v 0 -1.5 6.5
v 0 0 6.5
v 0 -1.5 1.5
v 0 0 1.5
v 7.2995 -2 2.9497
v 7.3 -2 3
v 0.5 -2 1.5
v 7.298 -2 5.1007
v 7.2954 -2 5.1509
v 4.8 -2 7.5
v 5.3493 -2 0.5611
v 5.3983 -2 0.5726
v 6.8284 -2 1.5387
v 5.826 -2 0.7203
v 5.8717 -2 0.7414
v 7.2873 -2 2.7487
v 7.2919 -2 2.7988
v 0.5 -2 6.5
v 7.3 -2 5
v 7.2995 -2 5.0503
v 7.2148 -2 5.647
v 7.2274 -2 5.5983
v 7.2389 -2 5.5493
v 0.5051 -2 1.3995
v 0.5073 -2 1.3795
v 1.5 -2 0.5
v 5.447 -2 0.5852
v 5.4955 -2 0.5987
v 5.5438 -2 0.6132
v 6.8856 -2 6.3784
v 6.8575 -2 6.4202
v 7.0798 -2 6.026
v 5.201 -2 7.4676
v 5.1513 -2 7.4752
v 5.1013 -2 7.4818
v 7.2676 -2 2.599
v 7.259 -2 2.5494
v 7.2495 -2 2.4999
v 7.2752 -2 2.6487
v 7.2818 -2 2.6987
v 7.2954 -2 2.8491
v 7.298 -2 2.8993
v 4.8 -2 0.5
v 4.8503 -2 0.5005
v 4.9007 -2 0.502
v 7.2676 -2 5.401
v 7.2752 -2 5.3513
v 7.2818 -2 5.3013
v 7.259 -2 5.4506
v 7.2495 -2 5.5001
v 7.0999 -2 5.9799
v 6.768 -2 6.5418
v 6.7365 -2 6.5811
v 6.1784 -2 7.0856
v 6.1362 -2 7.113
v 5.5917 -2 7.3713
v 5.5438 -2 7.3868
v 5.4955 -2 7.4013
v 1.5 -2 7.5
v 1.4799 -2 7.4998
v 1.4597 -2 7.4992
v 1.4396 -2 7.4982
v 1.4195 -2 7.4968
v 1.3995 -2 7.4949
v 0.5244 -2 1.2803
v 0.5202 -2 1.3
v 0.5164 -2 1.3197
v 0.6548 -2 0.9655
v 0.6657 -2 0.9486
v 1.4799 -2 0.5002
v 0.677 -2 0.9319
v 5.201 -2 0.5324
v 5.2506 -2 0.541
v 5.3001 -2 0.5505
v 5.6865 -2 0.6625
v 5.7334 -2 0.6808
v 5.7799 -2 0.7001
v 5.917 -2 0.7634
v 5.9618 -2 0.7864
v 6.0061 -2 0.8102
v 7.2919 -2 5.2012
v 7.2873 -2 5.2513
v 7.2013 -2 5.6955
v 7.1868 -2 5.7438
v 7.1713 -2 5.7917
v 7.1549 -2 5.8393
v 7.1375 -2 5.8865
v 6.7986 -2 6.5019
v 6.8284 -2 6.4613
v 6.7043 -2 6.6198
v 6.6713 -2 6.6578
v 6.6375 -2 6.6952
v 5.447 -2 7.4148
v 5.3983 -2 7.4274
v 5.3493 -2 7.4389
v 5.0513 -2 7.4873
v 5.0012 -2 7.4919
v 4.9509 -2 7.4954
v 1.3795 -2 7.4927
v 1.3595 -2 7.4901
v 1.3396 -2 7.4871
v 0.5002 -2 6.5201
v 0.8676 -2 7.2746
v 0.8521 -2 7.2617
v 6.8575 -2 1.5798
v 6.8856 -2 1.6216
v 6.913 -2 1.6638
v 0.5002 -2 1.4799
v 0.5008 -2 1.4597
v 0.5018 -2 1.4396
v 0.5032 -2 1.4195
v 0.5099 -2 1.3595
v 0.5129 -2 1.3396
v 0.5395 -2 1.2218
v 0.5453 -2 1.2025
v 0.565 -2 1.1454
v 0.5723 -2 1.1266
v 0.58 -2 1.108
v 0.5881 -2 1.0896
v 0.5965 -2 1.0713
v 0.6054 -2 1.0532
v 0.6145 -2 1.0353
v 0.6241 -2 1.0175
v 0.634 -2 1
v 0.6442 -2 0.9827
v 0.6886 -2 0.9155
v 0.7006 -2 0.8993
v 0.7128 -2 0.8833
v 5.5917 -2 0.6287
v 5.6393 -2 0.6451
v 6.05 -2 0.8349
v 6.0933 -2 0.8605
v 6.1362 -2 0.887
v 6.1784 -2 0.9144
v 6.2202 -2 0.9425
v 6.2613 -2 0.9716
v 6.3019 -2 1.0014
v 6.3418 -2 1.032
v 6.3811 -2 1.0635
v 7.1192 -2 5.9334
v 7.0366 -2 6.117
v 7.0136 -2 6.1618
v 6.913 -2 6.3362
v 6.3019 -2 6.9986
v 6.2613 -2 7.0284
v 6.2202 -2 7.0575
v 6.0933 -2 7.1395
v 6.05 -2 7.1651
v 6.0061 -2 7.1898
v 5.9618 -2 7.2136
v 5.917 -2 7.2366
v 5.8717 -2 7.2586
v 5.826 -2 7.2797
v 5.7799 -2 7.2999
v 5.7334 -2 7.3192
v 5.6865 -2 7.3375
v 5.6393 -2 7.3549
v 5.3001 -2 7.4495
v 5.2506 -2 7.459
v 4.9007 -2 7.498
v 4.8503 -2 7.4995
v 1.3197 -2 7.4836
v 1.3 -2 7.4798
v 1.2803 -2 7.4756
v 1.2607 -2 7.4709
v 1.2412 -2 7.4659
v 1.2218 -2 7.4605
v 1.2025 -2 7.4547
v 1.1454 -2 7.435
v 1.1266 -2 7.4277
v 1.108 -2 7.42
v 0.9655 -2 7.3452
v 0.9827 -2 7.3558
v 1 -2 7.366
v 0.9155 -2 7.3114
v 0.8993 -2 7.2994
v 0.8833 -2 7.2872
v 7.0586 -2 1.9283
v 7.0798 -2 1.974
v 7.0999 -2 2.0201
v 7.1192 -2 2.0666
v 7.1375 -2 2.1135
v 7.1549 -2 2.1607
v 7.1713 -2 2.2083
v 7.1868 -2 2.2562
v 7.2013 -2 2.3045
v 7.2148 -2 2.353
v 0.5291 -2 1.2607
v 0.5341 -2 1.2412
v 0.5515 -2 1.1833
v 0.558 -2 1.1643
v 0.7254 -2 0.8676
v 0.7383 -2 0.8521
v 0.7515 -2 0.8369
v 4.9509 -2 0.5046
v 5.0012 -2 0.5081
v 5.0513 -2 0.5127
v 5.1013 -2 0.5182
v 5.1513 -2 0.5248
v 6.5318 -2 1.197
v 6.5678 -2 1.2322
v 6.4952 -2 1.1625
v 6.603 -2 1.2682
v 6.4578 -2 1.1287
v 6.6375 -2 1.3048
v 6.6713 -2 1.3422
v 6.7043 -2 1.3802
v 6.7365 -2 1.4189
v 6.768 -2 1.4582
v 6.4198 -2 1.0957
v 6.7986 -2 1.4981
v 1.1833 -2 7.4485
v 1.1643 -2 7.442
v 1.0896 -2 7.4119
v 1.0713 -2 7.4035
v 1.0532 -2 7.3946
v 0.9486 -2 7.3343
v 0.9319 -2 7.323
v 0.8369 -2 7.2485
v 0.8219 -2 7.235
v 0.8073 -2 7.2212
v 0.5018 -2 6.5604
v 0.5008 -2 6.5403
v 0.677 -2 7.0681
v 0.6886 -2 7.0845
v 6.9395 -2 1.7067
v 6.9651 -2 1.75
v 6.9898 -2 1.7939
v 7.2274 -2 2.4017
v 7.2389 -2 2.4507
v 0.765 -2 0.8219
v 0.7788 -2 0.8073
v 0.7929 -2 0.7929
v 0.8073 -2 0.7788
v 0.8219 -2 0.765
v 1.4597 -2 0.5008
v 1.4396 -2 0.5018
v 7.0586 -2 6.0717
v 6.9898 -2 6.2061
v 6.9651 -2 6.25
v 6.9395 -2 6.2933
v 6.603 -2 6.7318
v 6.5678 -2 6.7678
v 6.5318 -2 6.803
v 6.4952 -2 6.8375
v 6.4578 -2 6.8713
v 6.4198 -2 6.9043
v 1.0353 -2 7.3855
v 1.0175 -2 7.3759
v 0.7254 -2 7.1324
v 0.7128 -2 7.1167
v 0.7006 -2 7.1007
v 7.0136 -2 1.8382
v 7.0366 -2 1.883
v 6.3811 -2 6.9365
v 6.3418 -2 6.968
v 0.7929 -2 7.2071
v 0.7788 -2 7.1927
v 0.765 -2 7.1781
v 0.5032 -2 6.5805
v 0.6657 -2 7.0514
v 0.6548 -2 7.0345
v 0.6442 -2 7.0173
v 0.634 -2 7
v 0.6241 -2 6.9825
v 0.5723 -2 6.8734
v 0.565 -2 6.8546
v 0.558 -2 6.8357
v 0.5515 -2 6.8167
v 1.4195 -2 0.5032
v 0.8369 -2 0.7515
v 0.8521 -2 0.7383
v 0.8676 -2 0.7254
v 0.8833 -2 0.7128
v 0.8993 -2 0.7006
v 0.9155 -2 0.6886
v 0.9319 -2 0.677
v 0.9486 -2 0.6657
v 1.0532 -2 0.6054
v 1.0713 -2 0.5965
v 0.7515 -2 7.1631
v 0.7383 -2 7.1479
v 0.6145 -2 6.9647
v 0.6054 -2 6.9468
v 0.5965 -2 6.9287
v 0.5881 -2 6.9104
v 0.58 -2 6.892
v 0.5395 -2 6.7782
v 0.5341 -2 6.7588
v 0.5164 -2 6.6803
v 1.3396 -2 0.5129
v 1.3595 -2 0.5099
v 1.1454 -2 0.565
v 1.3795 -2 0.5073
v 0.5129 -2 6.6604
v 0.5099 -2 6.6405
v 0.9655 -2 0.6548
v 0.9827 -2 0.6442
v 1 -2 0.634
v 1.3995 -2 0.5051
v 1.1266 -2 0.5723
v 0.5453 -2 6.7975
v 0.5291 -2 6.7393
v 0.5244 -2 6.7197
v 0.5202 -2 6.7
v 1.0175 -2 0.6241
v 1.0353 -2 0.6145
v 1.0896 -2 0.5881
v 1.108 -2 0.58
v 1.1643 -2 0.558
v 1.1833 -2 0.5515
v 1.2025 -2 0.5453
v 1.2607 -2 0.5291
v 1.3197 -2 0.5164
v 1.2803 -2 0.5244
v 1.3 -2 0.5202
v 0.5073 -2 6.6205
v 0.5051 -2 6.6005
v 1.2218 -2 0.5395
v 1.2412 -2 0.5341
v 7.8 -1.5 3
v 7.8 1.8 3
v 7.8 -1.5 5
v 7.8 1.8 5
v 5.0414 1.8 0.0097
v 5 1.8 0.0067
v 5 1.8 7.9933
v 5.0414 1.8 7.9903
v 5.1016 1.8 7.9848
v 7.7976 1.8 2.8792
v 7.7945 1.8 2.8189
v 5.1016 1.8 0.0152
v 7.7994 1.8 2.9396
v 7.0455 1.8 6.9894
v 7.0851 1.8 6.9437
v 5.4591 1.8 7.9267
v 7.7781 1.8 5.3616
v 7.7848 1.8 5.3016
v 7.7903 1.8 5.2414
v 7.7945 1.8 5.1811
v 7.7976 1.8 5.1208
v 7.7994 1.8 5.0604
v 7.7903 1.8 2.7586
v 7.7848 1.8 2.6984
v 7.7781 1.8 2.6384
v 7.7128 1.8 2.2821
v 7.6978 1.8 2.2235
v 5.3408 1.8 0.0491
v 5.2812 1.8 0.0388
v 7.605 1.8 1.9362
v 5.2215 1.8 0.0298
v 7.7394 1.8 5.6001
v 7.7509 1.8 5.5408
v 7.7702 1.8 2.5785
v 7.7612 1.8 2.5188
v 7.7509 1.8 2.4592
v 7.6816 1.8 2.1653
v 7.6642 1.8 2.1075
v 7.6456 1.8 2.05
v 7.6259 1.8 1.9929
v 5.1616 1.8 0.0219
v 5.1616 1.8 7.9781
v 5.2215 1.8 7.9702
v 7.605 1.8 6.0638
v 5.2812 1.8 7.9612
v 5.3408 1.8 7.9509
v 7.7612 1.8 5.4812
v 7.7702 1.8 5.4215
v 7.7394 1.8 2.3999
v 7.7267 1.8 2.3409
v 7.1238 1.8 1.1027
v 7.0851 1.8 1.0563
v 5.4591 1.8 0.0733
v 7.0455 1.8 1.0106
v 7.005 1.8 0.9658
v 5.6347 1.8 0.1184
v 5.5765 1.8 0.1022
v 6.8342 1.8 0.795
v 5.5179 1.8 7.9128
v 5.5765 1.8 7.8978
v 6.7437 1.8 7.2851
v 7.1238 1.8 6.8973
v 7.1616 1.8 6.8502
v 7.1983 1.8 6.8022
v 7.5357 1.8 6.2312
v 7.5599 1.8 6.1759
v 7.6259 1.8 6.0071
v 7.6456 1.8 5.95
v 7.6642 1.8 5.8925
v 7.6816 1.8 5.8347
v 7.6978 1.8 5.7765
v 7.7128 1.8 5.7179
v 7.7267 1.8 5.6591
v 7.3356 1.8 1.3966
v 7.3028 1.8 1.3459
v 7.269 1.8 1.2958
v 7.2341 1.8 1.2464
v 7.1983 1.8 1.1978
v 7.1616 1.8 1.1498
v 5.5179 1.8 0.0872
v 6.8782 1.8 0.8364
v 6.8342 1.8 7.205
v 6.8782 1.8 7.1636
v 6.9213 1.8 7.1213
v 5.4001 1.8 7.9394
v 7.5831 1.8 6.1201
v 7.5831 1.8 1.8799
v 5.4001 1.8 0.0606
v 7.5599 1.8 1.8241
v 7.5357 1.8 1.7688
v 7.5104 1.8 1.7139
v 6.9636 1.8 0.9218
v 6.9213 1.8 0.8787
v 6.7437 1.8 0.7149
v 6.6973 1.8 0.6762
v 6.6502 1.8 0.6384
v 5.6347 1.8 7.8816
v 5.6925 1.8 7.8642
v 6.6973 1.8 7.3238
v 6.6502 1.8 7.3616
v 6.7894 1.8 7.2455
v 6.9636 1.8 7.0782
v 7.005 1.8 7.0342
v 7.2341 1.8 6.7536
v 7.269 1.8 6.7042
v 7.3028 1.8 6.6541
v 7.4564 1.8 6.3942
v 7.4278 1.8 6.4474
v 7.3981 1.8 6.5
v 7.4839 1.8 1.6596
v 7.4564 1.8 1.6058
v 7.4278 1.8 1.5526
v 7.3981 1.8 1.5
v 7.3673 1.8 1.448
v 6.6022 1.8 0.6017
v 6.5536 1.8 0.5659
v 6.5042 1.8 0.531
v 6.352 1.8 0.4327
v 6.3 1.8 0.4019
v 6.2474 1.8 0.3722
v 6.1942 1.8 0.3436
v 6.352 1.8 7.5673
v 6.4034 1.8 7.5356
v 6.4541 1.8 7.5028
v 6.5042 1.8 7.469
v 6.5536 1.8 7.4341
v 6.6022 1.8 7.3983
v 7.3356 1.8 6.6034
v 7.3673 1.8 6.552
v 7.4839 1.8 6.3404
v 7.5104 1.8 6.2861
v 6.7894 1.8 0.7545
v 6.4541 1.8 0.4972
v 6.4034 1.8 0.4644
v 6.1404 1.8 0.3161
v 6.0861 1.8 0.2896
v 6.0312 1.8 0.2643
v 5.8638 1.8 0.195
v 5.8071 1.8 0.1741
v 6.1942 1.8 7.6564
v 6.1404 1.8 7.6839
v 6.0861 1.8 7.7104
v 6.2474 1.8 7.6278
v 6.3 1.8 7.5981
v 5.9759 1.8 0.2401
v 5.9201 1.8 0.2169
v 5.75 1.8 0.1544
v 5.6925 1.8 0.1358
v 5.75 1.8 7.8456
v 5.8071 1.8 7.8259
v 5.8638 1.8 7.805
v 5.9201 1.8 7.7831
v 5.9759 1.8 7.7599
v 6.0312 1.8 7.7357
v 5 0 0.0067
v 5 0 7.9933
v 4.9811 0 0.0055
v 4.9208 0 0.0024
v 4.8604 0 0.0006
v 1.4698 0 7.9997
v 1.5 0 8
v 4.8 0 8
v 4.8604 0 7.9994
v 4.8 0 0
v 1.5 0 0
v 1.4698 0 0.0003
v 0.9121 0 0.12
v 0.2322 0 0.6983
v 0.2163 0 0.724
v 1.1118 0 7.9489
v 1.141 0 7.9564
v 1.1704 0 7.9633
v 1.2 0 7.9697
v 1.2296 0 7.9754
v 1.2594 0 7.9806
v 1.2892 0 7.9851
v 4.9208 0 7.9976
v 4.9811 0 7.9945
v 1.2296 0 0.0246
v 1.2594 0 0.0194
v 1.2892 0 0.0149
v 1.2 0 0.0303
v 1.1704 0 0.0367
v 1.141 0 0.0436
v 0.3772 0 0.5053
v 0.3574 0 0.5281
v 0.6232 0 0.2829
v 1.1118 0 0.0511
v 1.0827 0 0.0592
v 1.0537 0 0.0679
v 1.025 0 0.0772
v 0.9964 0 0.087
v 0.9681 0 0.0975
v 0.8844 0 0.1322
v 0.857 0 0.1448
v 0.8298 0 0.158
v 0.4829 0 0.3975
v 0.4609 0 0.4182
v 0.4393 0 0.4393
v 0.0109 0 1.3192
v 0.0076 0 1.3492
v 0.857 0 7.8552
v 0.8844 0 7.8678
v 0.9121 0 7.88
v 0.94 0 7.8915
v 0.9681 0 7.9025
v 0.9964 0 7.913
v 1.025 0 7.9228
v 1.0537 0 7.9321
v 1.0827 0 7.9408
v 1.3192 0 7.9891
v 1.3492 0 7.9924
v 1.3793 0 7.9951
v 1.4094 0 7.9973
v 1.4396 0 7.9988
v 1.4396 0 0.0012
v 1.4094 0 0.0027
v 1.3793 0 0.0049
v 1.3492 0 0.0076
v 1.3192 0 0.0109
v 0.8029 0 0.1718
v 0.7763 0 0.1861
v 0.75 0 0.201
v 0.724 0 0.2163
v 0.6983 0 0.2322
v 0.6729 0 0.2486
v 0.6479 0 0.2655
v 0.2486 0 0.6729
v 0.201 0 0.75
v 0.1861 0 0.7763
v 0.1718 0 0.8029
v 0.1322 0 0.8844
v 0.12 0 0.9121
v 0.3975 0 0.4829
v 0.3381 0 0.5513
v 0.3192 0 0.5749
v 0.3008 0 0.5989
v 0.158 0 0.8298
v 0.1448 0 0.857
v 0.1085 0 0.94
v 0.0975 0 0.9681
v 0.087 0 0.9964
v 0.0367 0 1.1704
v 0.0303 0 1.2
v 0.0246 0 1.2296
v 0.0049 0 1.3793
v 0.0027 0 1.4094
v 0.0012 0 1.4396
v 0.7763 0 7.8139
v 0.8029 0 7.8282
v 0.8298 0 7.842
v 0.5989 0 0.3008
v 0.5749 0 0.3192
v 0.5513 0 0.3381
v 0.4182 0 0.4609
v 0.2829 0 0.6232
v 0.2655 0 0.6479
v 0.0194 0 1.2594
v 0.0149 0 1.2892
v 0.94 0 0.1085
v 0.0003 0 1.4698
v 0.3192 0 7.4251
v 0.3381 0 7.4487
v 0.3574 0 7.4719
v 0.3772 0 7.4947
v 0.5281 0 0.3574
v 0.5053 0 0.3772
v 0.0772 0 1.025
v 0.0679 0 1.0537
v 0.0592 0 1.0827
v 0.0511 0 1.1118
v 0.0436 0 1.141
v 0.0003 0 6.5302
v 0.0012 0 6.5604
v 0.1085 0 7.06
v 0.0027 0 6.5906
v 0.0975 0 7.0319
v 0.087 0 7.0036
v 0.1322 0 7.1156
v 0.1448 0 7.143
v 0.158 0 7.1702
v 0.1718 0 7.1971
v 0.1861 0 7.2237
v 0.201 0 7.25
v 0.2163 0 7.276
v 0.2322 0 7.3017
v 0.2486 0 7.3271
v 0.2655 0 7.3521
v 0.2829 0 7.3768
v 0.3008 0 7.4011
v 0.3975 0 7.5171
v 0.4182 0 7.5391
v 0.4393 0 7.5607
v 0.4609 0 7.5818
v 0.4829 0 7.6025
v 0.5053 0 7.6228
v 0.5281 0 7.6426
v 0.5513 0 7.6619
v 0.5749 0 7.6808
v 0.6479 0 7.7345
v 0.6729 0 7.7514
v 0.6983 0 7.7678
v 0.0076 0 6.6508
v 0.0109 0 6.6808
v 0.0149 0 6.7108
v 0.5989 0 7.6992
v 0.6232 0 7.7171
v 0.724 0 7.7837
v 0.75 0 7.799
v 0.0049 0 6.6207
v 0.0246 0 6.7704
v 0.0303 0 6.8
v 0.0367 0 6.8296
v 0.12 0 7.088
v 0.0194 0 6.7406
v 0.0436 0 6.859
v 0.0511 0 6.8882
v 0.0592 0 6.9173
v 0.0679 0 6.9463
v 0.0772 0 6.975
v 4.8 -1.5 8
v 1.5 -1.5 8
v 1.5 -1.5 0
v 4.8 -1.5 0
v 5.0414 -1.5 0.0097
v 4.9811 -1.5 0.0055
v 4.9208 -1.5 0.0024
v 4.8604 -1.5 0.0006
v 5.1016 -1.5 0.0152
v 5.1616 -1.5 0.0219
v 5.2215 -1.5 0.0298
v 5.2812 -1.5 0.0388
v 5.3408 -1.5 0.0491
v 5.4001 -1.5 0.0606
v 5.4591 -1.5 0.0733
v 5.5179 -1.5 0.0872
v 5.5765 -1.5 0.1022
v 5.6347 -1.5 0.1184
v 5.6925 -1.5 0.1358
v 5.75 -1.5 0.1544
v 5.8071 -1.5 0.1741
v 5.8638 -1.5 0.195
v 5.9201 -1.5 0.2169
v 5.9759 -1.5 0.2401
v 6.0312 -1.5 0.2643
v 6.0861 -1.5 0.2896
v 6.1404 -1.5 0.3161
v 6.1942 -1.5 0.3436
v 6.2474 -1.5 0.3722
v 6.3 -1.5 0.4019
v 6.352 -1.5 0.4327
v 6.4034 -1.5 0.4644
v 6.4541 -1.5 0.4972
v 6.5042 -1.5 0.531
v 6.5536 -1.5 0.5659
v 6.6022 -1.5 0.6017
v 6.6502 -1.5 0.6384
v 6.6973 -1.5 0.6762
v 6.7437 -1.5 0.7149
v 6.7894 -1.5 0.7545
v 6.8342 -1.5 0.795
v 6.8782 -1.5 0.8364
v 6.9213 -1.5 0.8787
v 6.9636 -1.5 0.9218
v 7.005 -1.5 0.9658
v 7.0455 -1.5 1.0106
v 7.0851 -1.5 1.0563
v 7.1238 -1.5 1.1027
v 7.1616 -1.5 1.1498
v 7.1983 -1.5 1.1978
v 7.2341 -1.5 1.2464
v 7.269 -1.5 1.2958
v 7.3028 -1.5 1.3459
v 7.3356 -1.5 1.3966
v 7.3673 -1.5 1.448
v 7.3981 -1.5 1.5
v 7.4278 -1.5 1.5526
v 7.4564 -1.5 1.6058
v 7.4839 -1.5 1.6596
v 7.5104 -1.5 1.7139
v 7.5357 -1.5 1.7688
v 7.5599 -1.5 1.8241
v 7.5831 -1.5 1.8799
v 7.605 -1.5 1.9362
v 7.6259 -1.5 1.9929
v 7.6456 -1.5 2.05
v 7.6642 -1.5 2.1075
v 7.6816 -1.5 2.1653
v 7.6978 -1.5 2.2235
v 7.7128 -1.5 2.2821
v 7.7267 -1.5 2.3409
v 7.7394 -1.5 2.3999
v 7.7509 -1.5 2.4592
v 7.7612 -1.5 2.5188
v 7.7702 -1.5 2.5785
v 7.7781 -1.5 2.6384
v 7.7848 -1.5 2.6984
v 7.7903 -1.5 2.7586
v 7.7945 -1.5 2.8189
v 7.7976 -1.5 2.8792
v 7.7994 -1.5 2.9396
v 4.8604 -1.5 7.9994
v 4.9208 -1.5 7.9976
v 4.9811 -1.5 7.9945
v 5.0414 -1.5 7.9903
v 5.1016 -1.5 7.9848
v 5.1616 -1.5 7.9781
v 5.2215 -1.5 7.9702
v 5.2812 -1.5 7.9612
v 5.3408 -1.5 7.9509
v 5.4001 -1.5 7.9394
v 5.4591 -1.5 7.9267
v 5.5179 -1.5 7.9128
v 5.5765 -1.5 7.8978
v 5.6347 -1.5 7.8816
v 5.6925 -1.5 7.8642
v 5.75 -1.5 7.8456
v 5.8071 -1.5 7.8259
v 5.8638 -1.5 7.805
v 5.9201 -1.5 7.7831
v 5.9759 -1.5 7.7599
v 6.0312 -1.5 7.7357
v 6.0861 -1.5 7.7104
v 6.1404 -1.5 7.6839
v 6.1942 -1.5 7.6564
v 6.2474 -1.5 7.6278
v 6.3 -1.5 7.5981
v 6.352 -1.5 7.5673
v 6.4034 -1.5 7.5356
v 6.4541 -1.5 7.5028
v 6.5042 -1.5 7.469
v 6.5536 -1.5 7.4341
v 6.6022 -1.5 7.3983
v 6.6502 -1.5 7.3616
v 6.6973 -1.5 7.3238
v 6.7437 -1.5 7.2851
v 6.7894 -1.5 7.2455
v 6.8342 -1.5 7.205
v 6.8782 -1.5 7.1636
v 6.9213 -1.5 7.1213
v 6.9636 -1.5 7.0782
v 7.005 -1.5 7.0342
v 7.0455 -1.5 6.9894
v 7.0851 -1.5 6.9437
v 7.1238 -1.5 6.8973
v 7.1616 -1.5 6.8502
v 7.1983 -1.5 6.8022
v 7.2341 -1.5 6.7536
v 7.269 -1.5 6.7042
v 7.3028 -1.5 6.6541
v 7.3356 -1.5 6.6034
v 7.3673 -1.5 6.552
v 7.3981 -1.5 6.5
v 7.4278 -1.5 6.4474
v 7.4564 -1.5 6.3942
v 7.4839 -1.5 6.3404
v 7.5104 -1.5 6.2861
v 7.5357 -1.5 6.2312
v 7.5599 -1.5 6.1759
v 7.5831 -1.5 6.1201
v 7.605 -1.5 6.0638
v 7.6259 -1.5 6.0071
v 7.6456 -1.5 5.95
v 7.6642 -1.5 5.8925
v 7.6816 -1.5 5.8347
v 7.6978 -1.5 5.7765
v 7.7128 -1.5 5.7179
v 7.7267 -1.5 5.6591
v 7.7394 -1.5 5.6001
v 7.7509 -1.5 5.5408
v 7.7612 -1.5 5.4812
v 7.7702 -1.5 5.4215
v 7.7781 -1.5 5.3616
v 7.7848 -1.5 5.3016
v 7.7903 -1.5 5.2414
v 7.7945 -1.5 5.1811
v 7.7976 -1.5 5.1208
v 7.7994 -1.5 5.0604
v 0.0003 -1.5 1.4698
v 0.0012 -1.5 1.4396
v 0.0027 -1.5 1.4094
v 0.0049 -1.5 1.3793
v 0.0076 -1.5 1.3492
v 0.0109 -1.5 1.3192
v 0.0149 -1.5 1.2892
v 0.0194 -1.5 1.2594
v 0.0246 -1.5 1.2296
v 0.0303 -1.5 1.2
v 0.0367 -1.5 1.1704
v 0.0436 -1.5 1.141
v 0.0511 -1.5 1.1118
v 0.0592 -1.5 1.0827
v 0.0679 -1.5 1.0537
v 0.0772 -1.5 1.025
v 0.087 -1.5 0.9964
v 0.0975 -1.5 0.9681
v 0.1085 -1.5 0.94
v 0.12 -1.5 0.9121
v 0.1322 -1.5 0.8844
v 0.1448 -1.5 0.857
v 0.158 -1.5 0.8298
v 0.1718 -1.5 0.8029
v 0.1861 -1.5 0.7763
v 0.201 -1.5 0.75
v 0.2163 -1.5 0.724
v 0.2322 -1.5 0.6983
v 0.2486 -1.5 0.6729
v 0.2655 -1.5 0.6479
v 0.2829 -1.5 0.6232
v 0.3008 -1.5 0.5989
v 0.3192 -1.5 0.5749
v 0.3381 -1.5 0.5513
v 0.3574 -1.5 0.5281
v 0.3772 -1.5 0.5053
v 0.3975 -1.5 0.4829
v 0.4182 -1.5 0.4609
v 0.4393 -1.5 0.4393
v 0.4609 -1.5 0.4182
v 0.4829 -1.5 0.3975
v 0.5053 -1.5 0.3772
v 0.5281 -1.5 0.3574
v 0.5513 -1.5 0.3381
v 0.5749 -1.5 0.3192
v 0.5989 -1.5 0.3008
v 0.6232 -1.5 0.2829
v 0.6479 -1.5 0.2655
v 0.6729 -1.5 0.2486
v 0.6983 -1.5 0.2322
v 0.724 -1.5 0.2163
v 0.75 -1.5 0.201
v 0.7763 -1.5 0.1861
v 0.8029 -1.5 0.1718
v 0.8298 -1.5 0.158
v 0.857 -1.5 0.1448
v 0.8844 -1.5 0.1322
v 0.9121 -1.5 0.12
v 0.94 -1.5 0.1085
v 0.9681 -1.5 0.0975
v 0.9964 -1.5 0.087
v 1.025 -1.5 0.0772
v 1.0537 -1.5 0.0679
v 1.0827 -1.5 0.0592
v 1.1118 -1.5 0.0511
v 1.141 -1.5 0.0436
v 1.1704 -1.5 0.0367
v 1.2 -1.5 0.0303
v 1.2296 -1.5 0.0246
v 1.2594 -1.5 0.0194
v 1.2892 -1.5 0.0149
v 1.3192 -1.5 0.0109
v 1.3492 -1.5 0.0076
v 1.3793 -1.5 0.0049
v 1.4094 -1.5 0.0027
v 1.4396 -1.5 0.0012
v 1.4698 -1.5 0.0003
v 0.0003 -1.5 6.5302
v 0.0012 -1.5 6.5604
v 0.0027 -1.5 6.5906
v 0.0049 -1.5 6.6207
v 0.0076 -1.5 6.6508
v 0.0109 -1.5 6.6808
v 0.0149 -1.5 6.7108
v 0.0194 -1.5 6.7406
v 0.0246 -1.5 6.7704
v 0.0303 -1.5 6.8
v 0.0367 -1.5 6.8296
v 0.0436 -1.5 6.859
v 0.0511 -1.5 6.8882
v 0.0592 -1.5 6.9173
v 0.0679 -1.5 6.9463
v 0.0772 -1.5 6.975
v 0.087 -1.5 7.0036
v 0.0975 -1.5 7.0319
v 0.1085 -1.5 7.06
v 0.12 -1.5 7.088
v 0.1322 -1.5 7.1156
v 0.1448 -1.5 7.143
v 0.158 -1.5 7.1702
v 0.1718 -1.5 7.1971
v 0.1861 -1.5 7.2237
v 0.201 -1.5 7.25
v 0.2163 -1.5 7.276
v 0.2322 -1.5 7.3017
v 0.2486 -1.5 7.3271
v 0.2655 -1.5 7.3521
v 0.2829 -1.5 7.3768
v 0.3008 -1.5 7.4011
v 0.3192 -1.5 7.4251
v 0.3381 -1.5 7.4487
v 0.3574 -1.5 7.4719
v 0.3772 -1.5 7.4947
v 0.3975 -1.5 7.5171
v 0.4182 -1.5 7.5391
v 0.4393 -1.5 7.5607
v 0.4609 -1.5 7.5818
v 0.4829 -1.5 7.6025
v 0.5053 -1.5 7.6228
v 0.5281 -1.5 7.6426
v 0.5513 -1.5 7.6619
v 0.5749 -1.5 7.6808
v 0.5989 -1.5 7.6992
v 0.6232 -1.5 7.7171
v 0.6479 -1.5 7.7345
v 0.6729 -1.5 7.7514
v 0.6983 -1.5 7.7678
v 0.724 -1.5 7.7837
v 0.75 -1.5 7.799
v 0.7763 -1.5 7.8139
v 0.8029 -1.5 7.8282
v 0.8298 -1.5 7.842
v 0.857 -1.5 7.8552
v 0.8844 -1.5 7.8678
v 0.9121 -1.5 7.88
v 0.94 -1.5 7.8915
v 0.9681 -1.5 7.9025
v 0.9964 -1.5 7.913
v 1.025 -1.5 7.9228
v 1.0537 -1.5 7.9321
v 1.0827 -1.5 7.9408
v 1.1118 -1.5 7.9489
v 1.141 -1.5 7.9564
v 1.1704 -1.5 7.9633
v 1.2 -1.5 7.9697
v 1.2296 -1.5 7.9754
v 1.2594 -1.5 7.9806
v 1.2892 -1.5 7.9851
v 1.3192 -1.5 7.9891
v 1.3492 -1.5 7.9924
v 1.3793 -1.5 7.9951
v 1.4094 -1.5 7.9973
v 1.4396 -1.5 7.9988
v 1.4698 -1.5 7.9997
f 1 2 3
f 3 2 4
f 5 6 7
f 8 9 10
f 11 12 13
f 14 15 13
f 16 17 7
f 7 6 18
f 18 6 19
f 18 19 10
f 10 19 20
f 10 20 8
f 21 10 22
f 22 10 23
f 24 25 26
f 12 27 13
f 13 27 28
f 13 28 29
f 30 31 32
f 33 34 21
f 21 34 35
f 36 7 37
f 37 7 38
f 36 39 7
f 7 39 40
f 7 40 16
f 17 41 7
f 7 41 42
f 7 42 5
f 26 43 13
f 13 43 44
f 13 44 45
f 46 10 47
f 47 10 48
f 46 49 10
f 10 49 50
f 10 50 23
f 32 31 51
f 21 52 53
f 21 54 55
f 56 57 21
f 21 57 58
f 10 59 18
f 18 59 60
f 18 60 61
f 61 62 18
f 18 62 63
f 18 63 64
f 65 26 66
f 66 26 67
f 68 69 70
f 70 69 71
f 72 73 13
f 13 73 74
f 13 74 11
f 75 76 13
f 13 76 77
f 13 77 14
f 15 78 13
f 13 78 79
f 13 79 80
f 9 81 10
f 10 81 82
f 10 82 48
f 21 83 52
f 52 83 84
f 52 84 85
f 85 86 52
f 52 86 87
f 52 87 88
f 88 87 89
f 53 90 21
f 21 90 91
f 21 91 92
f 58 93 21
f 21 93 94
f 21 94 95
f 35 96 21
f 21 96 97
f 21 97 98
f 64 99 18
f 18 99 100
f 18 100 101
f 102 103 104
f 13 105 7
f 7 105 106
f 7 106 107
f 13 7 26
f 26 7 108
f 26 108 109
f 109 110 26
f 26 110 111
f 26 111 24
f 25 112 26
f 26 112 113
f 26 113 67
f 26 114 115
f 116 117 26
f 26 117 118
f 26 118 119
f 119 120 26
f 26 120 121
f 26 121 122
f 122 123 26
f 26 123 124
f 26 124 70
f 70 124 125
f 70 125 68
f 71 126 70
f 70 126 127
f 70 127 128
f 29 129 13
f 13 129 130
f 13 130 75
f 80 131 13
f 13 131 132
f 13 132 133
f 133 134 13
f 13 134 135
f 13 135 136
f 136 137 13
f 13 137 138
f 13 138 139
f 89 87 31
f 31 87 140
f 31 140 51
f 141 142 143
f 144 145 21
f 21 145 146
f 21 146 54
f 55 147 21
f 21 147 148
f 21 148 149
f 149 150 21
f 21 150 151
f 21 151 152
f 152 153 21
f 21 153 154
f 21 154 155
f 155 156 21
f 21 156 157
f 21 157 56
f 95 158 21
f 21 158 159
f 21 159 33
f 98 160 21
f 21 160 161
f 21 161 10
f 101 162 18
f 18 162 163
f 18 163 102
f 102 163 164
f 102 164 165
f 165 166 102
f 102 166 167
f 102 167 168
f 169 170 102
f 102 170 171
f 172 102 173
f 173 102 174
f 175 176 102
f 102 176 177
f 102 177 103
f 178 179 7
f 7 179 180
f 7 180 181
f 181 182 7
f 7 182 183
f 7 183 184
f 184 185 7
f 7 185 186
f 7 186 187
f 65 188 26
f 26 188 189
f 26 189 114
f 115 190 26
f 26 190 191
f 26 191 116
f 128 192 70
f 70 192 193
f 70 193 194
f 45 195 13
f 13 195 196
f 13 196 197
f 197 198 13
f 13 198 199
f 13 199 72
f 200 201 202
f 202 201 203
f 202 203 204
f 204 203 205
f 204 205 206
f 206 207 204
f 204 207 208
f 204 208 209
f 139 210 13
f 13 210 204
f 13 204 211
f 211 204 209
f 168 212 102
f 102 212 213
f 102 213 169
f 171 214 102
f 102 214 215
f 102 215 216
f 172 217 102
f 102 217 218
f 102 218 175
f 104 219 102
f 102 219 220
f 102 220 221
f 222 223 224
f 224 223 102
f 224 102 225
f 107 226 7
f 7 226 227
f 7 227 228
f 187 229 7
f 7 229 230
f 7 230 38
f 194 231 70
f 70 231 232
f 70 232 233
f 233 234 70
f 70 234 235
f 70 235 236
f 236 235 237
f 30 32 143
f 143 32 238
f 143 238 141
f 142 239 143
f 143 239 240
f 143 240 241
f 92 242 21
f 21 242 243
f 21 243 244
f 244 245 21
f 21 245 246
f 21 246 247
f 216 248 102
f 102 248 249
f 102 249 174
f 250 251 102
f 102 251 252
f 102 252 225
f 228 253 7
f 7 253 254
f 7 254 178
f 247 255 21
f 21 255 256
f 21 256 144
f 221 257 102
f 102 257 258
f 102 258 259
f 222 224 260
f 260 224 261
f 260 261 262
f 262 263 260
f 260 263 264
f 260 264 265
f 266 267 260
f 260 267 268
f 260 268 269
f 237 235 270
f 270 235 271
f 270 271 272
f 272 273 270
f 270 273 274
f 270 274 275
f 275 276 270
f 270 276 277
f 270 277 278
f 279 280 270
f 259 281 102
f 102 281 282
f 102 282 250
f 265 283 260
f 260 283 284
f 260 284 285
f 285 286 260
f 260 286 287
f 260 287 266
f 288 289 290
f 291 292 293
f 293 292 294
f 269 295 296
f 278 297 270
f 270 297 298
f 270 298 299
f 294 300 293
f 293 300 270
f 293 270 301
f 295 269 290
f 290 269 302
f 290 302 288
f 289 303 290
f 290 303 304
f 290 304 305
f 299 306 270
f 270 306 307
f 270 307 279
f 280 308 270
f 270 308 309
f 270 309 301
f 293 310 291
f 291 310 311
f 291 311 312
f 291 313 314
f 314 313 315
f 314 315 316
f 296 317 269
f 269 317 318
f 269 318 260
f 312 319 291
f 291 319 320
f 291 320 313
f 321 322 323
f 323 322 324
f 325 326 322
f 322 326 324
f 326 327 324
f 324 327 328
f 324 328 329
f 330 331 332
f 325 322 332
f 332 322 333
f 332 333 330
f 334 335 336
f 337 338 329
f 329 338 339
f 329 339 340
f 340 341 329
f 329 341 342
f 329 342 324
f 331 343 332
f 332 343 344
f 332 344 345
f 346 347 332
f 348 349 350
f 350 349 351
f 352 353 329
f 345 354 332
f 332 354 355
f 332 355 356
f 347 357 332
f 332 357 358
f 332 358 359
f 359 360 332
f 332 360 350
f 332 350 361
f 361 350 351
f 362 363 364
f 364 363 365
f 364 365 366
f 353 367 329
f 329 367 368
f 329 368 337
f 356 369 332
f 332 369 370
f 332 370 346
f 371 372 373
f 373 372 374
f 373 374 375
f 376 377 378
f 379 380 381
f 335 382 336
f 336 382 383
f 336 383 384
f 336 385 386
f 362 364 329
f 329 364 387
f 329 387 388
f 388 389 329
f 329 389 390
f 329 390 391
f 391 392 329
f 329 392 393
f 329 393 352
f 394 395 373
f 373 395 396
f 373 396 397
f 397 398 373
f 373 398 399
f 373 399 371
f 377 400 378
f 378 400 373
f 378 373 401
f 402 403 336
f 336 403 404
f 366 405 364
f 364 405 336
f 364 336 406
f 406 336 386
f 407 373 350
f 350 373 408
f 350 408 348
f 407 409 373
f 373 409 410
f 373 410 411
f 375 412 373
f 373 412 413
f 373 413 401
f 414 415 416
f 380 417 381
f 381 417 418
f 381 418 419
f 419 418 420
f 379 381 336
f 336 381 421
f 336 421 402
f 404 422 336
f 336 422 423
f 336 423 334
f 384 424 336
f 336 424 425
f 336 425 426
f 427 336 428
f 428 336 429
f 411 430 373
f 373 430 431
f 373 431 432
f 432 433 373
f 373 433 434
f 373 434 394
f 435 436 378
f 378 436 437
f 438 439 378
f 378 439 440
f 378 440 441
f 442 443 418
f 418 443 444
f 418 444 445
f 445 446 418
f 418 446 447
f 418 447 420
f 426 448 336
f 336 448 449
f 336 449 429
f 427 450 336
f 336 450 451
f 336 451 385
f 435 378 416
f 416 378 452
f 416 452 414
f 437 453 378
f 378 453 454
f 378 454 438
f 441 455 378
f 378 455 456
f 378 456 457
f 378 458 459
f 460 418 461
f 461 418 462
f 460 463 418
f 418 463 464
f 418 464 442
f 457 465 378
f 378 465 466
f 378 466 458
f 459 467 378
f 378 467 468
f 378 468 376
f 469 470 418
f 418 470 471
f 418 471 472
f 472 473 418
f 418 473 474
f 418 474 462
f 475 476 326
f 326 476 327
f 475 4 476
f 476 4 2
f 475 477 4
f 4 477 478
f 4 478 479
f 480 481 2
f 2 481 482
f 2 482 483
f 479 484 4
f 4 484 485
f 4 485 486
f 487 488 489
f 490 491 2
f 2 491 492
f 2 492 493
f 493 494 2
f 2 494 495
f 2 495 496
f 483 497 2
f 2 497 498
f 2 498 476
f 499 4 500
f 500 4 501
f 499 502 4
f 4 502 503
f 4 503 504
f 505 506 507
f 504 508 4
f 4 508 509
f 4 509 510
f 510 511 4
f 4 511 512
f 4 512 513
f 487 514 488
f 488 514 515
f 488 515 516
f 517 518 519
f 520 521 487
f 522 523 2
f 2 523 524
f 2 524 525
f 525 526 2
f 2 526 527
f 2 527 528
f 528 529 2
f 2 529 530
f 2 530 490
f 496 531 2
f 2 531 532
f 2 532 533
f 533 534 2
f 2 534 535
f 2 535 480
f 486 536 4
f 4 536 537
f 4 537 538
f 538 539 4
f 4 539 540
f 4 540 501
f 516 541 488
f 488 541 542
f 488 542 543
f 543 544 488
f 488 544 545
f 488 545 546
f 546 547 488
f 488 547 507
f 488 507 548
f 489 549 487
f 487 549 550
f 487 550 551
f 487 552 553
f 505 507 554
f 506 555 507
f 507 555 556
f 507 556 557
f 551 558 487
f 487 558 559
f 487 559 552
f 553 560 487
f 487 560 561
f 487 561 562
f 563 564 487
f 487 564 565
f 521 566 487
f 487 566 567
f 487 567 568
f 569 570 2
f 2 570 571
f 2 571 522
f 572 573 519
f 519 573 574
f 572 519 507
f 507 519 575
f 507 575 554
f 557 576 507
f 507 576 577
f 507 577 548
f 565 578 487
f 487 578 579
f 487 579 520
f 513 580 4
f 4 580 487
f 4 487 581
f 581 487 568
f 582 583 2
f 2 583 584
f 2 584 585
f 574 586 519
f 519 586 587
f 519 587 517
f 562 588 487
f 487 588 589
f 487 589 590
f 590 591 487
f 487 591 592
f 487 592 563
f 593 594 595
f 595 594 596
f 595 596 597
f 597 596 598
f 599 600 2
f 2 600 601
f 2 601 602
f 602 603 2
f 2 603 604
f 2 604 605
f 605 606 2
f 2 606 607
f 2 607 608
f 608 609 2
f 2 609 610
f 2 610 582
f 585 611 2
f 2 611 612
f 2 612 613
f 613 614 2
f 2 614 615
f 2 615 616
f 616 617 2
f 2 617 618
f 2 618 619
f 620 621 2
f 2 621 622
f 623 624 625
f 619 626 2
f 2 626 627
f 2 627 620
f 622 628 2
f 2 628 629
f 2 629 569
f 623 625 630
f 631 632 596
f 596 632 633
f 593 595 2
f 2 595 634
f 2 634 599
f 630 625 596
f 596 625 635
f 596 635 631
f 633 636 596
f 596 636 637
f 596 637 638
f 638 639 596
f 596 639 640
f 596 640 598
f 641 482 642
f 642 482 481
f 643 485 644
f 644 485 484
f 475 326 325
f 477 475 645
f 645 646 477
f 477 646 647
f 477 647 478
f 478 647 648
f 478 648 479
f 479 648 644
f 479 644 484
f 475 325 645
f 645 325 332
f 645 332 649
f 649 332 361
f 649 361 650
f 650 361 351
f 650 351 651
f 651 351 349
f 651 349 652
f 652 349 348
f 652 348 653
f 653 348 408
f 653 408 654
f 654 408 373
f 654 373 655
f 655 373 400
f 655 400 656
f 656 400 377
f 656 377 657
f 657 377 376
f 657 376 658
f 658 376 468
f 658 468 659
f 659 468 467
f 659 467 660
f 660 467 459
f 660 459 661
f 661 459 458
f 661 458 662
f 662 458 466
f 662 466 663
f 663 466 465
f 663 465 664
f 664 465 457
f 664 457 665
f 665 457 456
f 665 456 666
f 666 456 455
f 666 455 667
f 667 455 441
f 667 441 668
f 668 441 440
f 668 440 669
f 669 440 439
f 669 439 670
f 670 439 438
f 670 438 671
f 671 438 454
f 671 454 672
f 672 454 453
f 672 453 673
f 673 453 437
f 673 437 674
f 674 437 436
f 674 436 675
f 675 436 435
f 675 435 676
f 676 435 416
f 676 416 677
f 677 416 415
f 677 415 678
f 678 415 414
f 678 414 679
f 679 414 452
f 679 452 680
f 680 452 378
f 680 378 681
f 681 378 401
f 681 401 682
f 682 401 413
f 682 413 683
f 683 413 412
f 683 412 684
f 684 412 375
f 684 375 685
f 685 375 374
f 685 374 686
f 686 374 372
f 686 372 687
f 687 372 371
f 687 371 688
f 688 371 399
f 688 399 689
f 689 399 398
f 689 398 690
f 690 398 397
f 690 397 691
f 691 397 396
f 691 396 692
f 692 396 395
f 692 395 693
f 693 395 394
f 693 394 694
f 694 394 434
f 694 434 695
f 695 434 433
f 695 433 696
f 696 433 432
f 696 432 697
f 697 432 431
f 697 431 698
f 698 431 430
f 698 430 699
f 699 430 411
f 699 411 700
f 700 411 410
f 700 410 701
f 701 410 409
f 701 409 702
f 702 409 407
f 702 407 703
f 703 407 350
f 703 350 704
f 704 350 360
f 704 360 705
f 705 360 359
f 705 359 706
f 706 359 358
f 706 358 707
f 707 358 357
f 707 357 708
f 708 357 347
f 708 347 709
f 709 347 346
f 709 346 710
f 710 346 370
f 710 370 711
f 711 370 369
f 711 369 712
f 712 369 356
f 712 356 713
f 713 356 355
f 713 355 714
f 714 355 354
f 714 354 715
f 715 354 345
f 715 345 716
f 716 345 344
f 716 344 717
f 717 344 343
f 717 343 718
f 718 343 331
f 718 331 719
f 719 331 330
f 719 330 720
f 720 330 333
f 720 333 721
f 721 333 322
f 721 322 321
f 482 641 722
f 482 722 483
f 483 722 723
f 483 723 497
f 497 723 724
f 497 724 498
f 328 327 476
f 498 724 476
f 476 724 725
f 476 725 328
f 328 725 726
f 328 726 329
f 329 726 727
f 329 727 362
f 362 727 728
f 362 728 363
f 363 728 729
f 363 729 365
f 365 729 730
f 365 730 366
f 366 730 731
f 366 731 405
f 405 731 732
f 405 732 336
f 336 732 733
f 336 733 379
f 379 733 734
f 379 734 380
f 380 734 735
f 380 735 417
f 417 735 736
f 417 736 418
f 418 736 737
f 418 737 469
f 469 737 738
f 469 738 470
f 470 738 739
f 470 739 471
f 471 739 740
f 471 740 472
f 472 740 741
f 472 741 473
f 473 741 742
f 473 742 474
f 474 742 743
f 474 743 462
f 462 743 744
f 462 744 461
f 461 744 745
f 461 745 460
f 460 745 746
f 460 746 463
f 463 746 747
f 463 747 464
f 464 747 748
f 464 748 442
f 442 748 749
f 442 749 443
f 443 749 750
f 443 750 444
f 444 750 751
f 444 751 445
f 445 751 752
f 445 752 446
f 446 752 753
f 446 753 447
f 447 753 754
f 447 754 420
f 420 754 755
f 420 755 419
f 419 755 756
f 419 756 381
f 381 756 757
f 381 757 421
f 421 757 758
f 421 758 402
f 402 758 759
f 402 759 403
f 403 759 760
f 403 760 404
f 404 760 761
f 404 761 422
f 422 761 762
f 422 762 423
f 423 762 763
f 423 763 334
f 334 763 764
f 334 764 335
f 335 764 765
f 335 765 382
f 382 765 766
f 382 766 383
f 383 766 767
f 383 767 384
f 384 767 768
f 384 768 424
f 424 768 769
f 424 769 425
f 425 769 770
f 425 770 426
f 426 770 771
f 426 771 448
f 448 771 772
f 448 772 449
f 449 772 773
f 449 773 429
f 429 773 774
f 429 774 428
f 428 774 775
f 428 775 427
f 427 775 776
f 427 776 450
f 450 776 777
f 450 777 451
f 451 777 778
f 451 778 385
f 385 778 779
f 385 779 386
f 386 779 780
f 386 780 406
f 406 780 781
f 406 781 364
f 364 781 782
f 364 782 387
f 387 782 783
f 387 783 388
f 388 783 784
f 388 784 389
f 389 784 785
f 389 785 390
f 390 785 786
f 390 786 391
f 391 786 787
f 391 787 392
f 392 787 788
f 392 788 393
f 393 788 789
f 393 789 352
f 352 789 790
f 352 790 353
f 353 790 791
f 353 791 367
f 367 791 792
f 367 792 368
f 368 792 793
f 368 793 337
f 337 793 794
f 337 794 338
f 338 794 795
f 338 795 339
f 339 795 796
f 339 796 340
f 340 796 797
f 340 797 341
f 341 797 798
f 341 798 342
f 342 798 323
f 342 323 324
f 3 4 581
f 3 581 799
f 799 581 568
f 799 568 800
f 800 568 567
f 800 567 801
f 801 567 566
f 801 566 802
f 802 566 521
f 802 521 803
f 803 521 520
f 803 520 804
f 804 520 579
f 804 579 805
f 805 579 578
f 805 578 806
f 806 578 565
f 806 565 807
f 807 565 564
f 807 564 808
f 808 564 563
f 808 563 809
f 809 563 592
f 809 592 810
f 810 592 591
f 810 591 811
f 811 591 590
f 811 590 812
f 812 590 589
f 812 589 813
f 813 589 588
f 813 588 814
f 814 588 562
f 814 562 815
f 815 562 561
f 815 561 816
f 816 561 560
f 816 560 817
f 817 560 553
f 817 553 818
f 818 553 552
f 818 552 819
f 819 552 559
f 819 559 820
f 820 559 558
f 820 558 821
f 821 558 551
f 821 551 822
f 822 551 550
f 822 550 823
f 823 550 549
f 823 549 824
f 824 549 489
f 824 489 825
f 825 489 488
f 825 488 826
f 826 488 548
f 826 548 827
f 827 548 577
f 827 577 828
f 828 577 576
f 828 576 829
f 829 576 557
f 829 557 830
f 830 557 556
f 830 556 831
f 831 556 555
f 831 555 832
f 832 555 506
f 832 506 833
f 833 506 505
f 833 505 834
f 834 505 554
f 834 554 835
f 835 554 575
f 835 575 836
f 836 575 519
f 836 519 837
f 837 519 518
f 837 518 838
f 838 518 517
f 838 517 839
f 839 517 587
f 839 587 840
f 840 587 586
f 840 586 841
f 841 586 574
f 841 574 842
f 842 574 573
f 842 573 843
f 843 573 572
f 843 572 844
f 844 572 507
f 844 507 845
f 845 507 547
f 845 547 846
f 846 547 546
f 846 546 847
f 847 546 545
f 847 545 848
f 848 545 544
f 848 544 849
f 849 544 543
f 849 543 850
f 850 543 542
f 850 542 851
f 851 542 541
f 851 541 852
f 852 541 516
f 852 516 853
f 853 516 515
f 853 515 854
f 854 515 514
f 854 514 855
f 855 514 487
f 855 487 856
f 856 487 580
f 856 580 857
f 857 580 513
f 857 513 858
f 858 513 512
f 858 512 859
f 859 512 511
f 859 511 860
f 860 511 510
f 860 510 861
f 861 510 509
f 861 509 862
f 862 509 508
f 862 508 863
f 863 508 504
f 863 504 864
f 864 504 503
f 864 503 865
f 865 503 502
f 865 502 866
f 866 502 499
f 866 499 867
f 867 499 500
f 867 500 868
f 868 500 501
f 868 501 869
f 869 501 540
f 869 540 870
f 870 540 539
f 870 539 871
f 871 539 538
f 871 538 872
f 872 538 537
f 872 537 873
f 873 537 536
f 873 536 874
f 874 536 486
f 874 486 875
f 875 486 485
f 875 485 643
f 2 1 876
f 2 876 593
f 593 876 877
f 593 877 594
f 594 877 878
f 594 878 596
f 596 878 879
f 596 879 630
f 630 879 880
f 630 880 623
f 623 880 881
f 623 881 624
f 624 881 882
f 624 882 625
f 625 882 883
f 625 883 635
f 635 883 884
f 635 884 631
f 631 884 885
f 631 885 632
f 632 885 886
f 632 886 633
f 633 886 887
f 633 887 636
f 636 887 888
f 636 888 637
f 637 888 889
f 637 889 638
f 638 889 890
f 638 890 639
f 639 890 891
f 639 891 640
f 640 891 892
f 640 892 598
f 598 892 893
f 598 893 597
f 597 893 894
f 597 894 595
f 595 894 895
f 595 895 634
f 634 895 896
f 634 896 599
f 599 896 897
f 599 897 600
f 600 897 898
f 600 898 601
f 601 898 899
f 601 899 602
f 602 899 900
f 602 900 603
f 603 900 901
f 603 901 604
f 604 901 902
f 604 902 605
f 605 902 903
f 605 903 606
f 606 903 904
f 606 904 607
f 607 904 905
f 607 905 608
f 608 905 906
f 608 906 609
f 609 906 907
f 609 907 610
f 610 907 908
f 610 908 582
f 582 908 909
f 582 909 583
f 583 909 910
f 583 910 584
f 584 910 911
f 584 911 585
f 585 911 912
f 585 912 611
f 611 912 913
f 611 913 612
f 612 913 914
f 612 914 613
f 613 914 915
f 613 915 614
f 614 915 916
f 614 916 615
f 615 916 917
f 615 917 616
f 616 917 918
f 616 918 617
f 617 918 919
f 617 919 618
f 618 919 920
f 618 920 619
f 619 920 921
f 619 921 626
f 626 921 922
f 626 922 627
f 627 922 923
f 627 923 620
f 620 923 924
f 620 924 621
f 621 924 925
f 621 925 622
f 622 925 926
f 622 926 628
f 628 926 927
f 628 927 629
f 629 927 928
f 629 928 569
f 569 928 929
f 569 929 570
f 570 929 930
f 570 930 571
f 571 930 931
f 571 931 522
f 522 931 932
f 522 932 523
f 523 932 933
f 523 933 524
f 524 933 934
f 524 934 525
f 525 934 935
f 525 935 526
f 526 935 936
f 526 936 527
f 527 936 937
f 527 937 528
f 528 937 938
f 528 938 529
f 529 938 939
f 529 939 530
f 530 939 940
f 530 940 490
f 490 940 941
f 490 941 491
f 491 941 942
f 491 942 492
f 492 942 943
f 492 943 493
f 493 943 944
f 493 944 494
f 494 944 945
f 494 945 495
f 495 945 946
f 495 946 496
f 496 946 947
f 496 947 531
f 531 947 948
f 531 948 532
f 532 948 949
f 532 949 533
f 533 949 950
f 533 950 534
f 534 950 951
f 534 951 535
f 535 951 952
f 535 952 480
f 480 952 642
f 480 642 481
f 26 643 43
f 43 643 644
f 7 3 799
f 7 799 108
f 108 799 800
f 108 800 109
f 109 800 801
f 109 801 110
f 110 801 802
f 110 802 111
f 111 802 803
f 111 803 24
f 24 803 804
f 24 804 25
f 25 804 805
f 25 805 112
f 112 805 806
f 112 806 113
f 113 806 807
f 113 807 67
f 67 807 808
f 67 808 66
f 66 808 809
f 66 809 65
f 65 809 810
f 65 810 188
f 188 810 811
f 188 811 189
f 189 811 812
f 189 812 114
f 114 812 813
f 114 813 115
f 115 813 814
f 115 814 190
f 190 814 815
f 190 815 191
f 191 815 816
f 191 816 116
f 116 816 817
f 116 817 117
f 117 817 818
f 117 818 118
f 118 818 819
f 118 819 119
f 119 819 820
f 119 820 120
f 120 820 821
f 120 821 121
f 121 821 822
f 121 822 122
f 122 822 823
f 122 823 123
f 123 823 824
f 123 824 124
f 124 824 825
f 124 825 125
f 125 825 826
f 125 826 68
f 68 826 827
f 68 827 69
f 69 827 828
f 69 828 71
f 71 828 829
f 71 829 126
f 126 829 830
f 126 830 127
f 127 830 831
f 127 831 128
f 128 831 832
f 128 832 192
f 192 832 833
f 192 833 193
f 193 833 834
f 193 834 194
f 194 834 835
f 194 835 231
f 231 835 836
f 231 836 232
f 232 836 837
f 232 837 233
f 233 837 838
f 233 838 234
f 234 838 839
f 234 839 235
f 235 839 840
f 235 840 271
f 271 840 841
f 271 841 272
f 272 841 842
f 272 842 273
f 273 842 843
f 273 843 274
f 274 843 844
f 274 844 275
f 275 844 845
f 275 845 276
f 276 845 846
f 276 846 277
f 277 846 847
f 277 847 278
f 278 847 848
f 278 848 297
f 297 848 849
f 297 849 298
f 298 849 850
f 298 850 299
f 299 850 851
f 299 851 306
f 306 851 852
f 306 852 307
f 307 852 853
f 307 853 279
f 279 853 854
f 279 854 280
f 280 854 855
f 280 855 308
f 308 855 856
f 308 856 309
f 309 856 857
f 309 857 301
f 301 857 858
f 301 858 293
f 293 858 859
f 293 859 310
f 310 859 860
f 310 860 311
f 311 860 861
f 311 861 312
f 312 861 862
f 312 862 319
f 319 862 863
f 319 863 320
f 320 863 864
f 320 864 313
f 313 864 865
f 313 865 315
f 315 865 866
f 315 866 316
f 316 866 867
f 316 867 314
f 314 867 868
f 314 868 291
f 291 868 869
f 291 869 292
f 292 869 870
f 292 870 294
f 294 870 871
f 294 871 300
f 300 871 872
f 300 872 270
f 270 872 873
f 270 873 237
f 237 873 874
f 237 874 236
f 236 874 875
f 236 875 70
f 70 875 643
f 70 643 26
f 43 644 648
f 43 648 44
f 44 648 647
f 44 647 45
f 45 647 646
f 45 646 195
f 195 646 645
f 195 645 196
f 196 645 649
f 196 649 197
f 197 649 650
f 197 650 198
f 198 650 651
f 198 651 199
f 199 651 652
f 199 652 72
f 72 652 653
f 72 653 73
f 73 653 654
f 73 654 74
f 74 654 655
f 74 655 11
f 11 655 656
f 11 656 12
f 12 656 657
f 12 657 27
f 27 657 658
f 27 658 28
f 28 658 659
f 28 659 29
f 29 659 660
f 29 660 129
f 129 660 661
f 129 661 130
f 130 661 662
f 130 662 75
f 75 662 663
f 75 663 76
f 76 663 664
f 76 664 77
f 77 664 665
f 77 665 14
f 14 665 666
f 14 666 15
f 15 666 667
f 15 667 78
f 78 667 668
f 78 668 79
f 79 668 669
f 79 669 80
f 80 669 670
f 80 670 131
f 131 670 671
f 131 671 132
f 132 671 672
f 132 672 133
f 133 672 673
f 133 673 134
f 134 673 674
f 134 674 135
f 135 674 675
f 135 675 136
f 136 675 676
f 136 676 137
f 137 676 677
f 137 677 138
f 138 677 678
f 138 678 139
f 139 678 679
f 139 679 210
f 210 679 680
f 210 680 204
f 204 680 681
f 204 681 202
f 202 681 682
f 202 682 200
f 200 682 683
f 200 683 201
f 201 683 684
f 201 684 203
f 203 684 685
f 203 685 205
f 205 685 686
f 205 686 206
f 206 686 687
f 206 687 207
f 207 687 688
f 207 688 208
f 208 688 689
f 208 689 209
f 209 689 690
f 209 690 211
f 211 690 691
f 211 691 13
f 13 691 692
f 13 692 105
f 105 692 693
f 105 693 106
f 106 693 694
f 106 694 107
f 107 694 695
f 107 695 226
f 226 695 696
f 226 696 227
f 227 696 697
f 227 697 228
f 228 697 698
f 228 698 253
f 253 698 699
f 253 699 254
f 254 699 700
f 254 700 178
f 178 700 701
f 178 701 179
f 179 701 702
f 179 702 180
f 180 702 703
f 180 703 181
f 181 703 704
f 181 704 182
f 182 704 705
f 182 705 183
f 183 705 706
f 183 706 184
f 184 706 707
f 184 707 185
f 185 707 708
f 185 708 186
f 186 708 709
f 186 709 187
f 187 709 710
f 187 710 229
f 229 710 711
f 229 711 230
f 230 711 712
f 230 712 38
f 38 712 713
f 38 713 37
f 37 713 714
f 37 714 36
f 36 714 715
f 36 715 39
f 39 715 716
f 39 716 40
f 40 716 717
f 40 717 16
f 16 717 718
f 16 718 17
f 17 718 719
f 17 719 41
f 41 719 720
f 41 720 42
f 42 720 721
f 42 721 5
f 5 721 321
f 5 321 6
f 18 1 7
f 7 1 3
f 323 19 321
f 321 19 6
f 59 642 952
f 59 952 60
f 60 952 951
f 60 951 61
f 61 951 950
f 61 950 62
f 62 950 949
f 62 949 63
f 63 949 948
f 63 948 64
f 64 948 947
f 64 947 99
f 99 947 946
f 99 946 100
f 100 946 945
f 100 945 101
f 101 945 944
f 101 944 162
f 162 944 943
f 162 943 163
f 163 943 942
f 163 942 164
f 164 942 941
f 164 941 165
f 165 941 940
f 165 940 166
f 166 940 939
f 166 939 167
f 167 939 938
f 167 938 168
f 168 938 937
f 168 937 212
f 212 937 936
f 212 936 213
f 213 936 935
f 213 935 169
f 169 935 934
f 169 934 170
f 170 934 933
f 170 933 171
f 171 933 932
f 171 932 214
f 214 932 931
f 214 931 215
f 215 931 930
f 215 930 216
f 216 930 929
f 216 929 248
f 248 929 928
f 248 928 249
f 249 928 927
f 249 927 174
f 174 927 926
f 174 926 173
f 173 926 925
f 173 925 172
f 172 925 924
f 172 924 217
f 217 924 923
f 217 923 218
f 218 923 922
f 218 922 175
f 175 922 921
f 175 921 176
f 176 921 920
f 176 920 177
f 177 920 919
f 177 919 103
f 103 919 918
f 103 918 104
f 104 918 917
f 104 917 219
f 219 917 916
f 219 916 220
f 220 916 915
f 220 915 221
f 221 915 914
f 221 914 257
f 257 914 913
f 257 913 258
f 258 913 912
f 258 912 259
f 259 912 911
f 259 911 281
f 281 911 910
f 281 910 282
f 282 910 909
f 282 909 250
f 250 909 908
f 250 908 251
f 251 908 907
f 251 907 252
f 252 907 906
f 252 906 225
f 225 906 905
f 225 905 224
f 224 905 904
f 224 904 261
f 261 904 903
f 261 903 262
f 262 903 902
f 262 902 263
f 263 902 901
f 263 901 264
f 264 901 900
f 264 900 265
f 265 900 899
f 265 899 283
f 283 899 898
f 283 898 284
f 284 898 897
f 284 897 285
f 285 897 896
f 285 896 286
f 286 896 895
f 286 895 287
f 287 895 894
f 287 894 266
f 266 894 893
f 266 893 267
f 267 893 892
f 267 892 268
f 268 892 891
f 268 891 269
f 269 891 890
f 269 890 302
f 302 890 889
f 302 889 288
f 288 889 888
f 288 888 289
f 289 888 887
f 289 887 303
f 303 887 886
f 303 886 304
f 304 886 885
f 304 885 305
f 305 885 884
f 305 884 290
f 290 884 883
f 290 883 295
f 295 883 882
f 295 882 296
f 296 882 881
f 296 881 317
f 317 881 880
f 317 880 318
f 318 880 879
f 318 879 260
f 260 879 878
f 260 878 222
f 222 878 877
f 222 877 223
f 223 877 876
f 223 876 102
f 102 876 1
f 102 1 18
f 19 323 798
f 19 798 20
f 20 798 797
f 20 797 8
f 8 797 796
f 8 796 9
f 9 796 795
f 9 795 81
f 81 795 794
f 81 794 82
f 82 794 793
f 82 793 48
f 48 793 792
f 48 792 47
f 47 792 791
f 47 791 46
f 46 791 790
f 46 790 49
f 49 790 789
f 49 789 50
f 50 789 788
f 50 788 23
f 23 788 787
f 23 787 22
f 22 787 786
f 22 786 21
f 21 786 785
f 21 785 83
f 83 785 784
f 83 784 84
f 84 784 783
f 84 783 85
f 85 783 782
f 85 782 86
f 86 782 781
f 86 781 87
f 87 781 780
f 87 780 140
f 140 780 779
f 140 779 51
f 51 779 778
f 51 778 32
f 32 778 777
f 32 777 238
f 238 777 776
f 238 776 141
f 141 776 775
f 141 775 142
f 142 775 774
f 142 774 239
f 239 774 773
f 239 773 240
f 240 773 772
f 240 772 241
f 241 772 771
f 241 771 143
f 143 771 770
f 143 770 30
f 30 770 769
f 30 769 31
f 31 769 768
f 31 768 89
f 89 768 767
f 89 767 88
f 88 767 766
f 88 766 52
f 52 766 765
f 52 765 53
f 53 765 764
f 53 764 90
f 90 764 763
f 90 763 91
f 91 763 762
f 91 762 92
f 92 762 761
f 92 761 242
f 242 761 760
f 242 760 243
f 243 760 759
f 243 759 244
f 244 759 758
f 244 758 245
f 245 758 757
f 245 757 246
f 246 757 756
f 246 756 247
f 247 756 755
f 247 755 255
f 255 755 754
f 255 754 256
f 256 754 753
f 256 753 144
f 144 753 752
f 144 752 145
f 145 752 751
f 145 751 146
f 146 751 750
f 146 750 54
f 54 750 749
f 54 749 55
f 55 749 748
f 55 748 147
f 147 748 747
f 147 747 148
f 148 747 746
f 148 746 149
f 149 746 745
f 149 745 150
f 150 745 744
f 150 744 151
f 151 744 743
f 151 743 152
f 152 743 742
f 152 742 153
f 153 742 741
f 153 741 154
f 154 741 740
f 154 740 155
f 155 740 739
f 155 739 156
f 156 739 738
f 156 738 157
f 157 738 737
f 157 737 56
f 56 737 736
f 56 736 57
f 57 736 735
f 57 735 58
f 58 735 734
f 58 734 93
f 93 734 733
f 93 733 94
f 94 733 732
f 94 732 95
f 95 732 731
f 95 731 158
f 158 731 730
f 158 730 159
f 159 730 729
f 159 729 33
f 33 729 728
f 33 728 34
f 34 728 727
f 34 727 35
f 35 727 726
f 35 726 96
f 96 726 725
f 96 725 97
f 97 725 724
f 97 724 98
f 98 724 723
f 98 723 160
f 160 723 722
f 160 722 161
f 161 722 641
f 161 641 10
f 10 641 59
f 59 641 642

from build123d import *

# Parameters (mm, degrees)
BOSS_EXTRUDE1_DEPTH = 8
FILLET1_R           = 3
FILLET2_R           = 1.5
CHAMFER1_SIZE       = 0.5


with BuildPart() as part:
    # Sketch1 → Boss-Extrude1 (new body)
    with BuildSketch(Plane.XY):
        Polygon((0, 0), (5, 0), (5, 1.8), (7.8, 1.8), (7.8, 0), (7.8, -0.329113924), (7.8, -2), (6.430379747, -2), (0, -2), align=None)
    extrude(amount=BOSS_EXTRUDE1_DEPTH)

    # Fillet1
    fillet1_edges = [part.edges().sort_by_distance(p)[0] for p in [
        (7.8, -0.1, 0),
        (7.8, -0.1, 8),
    ]]
    fillet(fillet1_edges, radius=FILLET1_R)

    # Fillet2
    fillet2_edges = [part.edges().sort_by_distance(p)[0] for p in [
        (0, -1, 0),
        (0, -1, 8),
    ]]
    fillet(fillet2_edges, radius=FILLET2_R)

    # Chamfer1
    chamfer1_edges = [part.edges().sort_by_distance(p)[0] for p in [
        (7.8, -2, 4),
        (6.921320344, -2, 7.121320344),
        (6.921320344, -2, 0.878679656),
        (0, -2, 4),
        (3.15, -2, 0),
        (3.15, -2, 8),
        (0.439339828, -2, 7.560660172),
        (0.439339828, -2, 0.439339828),
    ]]
    chamfer(chamfer1_edges, length=CHAMFER1_SIZE)


solid = part.part
